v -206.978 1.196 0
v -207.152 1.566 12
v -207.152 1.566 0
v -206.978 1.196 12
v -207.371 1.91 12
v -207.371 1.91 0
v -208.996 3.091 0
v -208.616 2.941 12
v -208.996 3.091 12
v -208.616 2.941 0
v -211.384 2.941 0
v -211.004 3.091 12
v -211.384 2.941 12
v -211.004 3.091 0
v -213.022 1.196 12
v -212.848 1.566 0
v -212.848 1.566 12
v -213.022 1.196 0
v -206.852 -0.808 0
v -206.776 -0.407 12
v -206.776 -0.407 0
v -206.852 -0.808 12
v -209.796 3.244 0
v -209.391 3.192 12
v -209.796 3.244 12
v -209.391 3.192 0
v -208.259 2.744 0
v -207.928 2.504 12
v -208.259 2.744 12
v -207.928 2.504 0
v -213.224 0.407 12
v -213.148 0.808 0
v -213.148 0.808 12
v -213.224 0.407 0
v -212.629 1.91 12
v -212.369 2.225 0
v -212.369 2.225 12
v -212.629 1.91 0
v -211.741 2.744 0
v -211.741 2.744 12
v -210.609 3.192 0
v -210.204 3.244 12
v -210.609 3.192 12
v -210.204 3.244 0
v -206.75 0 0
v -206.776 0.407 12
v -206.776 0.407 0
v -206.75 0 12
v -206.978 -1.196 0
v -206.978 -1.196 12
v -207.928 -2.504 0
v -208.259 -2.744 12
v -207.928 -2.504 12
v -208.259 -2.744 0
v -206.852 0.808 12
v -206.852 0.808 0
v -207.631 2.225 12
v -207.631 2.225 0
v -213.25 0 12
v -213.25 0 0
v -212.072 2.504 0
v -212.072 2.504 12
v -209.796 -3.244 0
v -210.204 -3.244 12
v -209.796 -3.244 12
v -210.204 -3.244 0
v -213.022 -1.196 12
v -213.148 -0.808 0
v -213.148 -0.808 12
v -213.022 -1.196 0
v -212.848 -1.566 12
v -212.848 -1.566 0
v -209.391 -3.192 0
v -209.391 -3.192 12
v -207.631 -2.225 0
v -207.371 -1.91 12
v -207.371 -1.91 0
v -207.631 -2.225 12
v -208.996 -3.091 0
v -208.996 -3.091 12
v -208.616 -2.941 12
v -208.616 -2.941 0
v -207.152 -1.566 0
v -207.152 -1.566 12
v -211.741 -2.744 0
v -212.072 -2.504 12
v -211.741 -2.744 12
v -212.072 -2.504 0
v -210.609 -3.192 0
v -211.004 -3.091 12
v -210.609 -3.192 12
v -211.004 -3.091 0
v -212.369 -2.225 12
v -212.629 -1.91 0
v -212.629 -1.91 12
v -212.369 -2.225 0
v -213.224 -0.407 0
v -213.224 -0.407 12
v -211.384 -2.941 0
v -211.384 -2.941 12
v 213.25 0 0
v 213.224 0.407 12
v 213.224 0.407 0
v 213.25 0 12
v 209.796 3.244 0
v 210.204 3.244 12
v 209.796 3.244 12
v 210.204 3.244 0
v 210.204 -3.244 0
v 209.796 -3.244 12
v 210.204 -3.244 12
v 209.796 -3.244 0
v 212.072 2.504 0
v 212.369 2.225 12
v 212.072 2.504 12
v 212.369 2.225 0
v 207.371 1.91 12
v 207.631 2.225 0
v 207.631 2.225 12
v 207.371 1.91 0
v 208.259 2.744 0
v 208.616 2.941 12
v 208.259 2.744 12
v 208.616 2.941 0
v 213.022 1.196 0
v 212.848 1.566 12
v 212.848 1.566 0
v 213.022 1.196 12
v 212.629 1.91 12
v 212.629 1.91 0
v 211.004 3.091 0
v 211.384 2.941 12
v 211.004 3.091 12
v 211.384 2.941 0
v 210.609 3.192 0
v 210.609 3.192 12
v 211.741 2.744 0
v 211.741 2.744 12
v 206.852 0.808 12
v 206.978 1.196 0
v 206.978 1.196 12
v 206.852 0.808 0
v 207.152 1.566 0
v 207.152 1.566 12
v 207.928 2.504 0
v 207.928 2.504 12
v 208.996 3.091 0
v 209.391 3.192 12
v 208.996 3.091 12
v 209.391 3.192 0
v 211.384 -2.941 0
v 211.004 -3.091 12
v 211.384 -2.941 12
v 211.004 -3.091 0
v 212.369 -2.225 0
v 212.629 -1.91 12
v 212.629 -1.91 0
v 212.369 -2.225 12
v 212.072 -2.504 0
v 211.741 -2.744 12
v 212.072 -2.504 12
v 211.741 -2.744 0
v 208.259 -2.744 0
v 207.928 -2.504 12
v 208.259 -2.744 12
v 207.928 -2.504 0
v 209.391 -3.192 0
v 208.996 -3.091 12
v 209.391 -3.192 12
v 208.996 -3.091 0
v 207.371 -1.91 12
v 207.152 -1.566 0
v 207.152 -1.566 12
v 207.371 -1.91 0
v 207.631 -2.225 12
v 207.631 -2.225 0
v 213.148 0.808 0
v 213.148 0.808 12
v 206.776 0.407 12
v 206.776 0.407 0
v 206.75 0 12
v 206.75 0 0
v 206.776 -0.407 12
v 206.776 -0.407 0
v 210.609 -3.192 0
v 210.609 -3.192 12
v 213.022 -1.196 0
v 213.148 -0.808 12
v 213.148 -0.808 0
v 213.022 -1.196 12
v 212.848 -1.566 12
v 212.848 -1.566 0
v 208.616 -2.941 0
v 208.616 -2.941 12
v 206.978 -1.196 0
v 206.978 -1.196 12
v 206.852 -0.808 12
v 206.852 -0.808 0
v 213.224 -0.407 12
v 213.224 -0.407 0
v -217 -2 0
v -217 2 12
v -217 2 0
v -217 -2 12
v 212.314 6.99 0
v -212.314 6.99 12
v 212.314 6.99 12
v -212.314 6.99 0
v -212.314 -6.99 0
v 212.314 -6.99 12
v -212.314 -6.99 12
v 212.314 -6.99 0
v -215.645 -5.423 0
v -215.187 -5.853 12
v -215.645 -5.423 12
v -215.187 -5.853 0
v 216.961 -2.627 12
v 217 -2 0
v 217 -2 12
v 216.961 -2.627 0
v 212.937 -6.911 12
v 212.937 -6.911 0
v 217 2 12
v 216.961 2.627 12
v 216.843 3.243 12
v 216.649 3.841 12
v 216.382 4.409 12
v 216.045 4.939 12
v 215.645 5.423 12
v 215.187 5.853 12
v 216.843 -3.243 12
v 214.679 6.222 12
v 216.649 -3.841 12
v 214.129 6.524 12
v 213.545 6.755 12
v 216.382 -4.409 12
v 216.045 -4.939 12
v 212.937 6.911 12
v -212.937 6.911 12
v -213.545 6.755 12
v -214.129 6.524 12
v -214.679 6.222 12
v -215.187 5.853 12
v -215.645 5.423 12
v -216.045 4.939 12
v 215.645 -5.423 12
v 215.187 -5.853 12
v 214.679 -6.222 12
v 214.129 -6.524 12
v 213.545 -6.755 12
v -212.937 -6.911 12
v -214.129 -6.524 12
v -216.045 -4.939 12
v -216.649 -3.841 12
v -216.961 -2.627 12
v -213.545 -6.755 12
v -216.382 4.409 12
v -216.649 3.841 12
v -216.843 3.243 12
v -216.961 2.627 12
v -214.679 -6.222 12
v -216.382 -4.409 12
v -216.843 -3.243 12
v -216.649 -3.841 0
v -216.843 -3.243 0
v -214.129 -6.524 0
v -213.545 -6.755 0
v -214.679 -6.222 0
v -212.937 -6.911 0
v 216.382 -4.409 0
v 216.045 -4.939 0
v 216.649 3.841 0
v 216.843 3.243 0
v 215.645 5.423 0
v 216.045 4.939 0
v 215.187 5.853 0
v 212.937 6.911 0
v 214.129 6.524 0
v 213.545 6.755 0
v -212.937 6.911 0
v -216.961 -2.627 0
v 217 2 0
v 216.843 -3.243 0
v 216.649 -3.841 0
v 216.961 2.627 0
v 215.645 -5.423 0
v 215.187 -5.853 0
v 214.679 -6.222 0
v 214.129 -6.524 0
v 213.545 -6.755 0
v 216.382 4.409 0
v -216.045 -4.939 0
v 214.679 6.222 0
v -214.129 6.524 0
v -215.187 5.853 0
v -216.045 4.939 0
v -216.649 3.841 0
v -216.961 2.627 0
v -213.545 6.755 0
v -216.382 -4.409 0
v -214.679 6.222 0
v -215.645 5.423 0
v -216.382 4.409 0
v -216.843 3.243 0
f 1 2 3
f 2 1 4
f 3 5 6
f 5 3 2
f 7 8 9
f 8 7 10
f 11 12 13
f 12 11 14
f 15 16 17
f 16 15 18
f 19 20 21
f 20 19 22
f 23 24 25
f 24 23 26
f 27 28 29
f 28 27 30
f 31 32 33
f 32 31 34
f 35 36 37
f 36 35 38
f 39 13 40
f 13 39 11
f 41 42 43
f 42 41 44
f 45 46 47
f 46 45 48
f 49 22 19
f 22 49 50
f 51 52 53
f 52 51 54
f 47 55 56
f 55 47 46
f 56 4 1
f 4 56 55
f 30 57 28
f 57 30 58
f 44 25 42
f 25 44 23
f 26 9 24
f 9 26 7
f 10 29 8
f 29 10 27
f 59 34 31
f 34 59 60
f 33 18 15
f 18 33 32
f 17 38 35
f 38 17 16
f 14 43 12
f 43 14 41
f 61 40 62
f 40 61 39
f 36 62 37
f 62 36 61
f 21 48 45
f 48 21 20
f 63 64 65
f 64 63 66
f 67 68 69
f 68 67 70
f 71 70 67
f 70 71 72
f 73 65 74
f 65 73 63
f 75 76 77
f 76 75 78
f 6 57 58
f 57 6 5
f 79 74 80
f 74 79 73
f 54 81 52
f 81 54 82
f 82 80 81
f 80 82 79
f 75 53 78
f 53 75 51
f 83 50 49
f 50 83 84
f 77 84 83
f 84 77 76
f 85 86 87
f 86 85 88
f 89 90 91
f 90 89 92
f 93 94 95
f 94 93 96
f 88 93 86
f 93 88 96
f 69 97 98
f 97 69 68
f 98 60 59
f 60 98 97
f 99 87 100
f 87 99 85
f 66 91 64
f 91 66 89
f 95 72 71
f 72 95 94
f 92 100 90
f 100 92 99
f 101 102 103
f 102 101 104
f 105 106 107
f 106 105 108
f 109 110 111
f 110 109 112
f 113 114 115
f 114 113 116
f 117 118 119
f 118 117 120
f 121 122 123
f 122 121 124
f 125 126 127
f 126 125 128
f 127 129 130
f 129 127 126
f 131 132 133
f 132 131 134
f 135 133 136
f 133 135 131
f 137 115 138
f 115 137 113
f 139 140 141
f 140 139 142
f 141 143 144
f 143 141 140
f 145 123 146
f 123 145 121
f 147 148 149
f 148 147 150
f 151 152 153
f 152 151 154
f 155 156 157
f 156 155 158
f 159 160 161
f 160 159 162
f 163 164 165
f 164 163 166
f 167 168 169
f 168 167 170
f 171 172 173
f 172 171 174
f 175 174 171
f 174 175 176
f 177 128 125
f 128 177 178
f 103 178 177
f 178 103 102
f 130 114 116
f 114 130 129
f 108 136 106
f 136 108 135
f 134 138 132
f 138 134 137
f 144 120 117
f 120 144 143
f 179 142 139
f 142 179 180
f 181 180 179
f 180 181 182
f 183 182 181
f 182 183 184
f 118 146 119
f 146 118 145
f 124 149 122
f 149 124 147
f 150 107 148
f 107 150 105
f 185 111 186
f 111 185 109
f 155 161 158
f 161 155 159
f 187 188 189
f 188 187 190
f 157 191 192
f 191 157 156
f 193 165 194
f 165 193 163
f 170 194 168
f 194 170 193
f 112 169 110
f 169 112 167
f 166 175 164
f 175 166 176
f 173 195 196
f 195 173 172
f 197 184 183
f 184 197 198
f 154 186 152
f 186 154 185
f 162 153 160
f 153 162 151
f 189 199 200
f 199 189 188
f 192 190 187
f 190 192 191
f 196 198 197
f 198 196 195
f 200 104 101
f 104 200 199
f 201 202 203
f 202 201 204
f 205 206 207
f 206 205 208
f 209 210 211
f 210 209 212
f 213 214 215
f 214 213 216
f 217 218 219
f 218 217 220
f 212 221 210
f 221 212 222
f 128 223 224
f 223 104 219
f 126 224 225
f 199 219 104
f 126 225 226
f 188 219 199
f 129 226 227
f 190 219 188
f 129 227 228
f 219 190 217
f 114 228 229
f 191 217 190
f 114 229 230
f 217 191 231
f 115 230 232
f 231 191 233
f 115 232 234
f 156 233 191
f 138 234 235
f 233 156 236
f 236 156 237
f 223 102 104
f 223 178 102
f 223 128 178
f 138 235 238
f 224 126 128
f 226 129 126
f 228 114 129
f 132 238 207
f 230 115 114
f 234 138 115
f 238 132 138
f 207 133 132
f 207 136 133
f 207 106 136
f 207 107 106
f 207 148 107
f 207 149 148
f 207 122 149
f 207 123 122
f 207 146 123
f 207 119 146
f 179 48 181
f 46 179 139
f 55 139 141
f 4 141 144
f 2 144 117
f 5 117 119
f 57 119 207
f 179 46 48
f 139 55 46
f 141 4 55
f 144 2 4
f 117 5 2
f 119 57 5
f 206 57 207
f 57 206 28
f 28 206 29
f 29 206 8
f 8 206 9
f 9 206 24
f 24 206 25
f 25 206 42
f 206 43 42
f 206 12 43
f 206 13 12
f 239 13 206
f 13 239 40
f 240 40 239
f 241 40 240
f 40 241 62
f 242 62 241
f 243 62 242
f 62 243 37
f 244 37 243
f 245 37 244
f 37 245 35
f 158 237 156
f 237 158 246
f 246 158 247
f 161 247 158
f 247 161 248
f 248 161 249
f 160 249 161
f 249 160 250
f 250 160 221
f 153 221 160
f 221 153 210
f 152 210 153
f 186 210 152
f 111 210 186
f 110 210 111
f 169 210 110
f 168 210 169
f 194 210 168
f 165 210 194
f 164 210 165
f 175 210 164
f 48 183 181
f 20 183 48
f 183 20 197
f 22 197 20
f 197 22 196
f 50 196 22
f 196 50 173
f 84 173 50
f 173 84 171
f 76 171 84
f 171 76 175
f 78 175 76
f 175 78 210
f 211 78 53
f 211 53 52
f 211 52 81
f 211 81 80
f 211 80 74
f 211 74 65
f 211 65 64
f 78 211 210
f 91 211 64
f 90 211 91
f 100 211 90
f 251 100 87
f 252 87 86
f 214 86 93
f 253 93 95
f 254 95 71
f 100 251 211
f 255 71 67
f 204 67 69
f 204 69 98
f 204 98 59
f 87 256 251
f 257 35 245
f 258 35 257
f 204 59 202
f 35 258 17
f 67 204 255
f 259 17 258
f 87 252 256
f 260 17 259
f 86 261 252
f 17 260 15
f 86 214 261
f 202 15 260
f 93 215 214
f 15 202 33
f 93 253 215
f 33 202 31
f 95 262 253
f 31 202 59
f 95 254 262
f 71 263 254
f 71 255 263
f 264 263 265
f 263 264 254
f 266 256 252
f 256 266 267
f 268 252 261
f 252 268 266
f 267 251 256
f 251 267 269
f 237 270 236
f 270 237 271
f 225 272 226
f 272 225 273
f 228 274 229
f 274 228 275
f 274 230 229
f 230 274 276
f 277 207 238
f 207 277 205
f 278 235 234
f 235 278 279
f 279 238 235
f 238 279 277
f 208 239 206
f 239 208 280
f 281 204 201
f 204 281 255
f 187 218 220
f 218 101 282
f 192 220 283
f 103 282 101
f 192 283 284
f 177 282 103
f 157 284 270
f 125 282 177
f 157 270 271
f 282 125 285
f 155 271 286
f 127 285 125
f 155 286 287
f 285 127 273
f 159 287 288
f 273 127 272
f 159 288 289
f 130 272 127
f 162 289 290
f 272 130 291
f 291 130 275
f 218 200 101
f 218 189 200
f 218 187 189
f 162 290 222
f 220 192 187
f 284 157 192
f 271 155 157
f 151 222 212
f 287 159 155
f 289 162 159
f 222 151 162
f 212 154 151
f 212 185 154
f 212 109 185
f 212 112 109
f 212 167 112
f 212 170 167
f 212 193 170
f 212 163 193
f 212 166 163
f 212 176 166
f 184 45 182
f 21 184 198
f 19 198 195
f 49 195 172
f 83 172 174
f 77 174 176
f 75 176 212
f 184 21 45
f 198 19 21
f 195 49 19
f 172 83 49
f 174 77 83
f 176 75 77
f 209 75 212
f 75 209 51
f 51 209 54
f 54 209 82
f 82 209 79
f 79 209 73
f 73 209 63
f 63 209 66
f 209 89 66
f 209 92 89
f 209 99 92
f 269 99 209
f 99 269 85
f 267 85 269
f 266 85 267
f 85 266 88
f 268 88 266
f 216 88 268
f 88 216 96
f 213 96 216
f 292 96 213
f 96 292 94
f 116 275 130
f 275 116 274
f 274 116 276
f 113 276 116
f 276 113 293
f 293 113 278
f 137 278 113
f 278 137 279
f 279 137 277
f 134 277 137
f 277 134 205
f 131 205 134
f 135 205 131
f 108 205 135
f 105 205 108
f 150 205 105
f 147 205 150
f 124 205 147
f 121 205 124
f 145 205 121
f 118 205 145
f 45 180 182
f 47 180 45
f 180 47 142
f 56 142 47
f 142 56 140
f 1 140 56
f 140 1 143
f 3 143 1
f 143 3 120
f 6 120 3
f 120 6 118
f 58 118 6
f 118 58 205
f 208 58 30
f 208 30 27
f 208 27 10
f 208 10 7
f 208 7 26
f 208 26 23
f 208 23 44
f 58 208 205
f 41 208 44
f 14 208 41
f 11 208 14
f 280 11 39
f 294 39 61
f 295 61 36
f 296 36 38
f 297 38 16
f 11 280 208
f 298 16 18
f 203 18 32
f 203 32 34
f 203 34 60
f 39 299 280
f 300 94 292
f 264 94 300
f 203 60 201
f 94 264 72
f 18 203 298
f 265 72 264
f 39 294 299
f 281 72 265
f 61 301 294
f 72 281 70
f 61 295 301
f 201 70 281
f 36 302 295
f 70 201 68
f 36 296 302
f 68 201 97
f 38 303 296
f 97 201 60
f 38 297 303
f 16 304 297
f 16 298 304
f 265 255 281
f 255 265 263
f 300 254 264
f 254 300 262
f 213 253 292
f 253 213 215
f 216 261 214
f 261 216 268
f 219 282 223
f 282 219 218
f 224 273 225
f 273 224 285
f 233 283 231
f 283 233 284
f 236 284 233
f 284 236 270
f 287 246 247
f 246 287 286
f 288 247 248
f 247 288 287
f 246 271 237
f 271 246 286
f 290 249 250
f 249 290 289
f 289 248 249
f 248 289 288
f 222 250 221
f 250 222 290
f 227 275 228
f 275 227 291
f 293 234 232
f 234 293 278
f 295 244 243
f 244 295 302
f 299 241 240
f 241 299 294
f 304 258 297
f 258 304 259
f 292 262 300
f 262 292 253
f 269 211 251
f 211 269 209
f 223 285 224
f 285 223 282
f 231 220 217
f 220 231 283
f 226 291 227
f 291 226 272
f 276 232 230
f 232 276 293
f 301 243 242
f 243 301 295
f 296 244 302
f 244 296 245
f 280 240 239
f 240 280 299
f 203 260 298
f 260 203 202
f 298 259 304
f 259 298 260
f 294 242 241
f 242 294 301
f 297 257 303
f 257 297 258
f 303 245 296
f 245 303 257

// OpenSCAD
$fn = 50;


difference() {
	union() {
		hull() {
			translate(v = [-212.0000000000, 2.0000000000, 0]) {
				cylinder(h = 12, r = 5);
			}
			translate(v = [212.0000000000, 2.0000000000, 0]) {
				cylinder(h = 12, r = 5);
			}
			translate(v = [-212.0000000000, -2.0000000000, 0]) {
				cylinder(h = 12, r = 5);
			}
			translate(v = [212.0000000000, -2.0000000000, 0]) {
				cylinder(h = 12, r = 5);
			}
		}
	}
	union() {
		translate(v = [-210.0000000000, 0.0000000000, -100.0000000000]) {
			cylinder(h = 200, r = 3.2500000000);
		}
		translate(v = [-210.0000000000, 0.0000000000, -100.0000000000]) {
			cylinder(h = 200, r = 3.2500000000);
		}
		translate(v = [210.0000000000, 0.0000000000, -100.0000000000]) {
			cylinder(h = 200, r = 3.2500000000);
		}
		translate(v = [210.0000000000, 0.0000000000, -100.0000000000]) {
			cylinder(h = 200, r = 3.2500000000);
		}
	}
}
